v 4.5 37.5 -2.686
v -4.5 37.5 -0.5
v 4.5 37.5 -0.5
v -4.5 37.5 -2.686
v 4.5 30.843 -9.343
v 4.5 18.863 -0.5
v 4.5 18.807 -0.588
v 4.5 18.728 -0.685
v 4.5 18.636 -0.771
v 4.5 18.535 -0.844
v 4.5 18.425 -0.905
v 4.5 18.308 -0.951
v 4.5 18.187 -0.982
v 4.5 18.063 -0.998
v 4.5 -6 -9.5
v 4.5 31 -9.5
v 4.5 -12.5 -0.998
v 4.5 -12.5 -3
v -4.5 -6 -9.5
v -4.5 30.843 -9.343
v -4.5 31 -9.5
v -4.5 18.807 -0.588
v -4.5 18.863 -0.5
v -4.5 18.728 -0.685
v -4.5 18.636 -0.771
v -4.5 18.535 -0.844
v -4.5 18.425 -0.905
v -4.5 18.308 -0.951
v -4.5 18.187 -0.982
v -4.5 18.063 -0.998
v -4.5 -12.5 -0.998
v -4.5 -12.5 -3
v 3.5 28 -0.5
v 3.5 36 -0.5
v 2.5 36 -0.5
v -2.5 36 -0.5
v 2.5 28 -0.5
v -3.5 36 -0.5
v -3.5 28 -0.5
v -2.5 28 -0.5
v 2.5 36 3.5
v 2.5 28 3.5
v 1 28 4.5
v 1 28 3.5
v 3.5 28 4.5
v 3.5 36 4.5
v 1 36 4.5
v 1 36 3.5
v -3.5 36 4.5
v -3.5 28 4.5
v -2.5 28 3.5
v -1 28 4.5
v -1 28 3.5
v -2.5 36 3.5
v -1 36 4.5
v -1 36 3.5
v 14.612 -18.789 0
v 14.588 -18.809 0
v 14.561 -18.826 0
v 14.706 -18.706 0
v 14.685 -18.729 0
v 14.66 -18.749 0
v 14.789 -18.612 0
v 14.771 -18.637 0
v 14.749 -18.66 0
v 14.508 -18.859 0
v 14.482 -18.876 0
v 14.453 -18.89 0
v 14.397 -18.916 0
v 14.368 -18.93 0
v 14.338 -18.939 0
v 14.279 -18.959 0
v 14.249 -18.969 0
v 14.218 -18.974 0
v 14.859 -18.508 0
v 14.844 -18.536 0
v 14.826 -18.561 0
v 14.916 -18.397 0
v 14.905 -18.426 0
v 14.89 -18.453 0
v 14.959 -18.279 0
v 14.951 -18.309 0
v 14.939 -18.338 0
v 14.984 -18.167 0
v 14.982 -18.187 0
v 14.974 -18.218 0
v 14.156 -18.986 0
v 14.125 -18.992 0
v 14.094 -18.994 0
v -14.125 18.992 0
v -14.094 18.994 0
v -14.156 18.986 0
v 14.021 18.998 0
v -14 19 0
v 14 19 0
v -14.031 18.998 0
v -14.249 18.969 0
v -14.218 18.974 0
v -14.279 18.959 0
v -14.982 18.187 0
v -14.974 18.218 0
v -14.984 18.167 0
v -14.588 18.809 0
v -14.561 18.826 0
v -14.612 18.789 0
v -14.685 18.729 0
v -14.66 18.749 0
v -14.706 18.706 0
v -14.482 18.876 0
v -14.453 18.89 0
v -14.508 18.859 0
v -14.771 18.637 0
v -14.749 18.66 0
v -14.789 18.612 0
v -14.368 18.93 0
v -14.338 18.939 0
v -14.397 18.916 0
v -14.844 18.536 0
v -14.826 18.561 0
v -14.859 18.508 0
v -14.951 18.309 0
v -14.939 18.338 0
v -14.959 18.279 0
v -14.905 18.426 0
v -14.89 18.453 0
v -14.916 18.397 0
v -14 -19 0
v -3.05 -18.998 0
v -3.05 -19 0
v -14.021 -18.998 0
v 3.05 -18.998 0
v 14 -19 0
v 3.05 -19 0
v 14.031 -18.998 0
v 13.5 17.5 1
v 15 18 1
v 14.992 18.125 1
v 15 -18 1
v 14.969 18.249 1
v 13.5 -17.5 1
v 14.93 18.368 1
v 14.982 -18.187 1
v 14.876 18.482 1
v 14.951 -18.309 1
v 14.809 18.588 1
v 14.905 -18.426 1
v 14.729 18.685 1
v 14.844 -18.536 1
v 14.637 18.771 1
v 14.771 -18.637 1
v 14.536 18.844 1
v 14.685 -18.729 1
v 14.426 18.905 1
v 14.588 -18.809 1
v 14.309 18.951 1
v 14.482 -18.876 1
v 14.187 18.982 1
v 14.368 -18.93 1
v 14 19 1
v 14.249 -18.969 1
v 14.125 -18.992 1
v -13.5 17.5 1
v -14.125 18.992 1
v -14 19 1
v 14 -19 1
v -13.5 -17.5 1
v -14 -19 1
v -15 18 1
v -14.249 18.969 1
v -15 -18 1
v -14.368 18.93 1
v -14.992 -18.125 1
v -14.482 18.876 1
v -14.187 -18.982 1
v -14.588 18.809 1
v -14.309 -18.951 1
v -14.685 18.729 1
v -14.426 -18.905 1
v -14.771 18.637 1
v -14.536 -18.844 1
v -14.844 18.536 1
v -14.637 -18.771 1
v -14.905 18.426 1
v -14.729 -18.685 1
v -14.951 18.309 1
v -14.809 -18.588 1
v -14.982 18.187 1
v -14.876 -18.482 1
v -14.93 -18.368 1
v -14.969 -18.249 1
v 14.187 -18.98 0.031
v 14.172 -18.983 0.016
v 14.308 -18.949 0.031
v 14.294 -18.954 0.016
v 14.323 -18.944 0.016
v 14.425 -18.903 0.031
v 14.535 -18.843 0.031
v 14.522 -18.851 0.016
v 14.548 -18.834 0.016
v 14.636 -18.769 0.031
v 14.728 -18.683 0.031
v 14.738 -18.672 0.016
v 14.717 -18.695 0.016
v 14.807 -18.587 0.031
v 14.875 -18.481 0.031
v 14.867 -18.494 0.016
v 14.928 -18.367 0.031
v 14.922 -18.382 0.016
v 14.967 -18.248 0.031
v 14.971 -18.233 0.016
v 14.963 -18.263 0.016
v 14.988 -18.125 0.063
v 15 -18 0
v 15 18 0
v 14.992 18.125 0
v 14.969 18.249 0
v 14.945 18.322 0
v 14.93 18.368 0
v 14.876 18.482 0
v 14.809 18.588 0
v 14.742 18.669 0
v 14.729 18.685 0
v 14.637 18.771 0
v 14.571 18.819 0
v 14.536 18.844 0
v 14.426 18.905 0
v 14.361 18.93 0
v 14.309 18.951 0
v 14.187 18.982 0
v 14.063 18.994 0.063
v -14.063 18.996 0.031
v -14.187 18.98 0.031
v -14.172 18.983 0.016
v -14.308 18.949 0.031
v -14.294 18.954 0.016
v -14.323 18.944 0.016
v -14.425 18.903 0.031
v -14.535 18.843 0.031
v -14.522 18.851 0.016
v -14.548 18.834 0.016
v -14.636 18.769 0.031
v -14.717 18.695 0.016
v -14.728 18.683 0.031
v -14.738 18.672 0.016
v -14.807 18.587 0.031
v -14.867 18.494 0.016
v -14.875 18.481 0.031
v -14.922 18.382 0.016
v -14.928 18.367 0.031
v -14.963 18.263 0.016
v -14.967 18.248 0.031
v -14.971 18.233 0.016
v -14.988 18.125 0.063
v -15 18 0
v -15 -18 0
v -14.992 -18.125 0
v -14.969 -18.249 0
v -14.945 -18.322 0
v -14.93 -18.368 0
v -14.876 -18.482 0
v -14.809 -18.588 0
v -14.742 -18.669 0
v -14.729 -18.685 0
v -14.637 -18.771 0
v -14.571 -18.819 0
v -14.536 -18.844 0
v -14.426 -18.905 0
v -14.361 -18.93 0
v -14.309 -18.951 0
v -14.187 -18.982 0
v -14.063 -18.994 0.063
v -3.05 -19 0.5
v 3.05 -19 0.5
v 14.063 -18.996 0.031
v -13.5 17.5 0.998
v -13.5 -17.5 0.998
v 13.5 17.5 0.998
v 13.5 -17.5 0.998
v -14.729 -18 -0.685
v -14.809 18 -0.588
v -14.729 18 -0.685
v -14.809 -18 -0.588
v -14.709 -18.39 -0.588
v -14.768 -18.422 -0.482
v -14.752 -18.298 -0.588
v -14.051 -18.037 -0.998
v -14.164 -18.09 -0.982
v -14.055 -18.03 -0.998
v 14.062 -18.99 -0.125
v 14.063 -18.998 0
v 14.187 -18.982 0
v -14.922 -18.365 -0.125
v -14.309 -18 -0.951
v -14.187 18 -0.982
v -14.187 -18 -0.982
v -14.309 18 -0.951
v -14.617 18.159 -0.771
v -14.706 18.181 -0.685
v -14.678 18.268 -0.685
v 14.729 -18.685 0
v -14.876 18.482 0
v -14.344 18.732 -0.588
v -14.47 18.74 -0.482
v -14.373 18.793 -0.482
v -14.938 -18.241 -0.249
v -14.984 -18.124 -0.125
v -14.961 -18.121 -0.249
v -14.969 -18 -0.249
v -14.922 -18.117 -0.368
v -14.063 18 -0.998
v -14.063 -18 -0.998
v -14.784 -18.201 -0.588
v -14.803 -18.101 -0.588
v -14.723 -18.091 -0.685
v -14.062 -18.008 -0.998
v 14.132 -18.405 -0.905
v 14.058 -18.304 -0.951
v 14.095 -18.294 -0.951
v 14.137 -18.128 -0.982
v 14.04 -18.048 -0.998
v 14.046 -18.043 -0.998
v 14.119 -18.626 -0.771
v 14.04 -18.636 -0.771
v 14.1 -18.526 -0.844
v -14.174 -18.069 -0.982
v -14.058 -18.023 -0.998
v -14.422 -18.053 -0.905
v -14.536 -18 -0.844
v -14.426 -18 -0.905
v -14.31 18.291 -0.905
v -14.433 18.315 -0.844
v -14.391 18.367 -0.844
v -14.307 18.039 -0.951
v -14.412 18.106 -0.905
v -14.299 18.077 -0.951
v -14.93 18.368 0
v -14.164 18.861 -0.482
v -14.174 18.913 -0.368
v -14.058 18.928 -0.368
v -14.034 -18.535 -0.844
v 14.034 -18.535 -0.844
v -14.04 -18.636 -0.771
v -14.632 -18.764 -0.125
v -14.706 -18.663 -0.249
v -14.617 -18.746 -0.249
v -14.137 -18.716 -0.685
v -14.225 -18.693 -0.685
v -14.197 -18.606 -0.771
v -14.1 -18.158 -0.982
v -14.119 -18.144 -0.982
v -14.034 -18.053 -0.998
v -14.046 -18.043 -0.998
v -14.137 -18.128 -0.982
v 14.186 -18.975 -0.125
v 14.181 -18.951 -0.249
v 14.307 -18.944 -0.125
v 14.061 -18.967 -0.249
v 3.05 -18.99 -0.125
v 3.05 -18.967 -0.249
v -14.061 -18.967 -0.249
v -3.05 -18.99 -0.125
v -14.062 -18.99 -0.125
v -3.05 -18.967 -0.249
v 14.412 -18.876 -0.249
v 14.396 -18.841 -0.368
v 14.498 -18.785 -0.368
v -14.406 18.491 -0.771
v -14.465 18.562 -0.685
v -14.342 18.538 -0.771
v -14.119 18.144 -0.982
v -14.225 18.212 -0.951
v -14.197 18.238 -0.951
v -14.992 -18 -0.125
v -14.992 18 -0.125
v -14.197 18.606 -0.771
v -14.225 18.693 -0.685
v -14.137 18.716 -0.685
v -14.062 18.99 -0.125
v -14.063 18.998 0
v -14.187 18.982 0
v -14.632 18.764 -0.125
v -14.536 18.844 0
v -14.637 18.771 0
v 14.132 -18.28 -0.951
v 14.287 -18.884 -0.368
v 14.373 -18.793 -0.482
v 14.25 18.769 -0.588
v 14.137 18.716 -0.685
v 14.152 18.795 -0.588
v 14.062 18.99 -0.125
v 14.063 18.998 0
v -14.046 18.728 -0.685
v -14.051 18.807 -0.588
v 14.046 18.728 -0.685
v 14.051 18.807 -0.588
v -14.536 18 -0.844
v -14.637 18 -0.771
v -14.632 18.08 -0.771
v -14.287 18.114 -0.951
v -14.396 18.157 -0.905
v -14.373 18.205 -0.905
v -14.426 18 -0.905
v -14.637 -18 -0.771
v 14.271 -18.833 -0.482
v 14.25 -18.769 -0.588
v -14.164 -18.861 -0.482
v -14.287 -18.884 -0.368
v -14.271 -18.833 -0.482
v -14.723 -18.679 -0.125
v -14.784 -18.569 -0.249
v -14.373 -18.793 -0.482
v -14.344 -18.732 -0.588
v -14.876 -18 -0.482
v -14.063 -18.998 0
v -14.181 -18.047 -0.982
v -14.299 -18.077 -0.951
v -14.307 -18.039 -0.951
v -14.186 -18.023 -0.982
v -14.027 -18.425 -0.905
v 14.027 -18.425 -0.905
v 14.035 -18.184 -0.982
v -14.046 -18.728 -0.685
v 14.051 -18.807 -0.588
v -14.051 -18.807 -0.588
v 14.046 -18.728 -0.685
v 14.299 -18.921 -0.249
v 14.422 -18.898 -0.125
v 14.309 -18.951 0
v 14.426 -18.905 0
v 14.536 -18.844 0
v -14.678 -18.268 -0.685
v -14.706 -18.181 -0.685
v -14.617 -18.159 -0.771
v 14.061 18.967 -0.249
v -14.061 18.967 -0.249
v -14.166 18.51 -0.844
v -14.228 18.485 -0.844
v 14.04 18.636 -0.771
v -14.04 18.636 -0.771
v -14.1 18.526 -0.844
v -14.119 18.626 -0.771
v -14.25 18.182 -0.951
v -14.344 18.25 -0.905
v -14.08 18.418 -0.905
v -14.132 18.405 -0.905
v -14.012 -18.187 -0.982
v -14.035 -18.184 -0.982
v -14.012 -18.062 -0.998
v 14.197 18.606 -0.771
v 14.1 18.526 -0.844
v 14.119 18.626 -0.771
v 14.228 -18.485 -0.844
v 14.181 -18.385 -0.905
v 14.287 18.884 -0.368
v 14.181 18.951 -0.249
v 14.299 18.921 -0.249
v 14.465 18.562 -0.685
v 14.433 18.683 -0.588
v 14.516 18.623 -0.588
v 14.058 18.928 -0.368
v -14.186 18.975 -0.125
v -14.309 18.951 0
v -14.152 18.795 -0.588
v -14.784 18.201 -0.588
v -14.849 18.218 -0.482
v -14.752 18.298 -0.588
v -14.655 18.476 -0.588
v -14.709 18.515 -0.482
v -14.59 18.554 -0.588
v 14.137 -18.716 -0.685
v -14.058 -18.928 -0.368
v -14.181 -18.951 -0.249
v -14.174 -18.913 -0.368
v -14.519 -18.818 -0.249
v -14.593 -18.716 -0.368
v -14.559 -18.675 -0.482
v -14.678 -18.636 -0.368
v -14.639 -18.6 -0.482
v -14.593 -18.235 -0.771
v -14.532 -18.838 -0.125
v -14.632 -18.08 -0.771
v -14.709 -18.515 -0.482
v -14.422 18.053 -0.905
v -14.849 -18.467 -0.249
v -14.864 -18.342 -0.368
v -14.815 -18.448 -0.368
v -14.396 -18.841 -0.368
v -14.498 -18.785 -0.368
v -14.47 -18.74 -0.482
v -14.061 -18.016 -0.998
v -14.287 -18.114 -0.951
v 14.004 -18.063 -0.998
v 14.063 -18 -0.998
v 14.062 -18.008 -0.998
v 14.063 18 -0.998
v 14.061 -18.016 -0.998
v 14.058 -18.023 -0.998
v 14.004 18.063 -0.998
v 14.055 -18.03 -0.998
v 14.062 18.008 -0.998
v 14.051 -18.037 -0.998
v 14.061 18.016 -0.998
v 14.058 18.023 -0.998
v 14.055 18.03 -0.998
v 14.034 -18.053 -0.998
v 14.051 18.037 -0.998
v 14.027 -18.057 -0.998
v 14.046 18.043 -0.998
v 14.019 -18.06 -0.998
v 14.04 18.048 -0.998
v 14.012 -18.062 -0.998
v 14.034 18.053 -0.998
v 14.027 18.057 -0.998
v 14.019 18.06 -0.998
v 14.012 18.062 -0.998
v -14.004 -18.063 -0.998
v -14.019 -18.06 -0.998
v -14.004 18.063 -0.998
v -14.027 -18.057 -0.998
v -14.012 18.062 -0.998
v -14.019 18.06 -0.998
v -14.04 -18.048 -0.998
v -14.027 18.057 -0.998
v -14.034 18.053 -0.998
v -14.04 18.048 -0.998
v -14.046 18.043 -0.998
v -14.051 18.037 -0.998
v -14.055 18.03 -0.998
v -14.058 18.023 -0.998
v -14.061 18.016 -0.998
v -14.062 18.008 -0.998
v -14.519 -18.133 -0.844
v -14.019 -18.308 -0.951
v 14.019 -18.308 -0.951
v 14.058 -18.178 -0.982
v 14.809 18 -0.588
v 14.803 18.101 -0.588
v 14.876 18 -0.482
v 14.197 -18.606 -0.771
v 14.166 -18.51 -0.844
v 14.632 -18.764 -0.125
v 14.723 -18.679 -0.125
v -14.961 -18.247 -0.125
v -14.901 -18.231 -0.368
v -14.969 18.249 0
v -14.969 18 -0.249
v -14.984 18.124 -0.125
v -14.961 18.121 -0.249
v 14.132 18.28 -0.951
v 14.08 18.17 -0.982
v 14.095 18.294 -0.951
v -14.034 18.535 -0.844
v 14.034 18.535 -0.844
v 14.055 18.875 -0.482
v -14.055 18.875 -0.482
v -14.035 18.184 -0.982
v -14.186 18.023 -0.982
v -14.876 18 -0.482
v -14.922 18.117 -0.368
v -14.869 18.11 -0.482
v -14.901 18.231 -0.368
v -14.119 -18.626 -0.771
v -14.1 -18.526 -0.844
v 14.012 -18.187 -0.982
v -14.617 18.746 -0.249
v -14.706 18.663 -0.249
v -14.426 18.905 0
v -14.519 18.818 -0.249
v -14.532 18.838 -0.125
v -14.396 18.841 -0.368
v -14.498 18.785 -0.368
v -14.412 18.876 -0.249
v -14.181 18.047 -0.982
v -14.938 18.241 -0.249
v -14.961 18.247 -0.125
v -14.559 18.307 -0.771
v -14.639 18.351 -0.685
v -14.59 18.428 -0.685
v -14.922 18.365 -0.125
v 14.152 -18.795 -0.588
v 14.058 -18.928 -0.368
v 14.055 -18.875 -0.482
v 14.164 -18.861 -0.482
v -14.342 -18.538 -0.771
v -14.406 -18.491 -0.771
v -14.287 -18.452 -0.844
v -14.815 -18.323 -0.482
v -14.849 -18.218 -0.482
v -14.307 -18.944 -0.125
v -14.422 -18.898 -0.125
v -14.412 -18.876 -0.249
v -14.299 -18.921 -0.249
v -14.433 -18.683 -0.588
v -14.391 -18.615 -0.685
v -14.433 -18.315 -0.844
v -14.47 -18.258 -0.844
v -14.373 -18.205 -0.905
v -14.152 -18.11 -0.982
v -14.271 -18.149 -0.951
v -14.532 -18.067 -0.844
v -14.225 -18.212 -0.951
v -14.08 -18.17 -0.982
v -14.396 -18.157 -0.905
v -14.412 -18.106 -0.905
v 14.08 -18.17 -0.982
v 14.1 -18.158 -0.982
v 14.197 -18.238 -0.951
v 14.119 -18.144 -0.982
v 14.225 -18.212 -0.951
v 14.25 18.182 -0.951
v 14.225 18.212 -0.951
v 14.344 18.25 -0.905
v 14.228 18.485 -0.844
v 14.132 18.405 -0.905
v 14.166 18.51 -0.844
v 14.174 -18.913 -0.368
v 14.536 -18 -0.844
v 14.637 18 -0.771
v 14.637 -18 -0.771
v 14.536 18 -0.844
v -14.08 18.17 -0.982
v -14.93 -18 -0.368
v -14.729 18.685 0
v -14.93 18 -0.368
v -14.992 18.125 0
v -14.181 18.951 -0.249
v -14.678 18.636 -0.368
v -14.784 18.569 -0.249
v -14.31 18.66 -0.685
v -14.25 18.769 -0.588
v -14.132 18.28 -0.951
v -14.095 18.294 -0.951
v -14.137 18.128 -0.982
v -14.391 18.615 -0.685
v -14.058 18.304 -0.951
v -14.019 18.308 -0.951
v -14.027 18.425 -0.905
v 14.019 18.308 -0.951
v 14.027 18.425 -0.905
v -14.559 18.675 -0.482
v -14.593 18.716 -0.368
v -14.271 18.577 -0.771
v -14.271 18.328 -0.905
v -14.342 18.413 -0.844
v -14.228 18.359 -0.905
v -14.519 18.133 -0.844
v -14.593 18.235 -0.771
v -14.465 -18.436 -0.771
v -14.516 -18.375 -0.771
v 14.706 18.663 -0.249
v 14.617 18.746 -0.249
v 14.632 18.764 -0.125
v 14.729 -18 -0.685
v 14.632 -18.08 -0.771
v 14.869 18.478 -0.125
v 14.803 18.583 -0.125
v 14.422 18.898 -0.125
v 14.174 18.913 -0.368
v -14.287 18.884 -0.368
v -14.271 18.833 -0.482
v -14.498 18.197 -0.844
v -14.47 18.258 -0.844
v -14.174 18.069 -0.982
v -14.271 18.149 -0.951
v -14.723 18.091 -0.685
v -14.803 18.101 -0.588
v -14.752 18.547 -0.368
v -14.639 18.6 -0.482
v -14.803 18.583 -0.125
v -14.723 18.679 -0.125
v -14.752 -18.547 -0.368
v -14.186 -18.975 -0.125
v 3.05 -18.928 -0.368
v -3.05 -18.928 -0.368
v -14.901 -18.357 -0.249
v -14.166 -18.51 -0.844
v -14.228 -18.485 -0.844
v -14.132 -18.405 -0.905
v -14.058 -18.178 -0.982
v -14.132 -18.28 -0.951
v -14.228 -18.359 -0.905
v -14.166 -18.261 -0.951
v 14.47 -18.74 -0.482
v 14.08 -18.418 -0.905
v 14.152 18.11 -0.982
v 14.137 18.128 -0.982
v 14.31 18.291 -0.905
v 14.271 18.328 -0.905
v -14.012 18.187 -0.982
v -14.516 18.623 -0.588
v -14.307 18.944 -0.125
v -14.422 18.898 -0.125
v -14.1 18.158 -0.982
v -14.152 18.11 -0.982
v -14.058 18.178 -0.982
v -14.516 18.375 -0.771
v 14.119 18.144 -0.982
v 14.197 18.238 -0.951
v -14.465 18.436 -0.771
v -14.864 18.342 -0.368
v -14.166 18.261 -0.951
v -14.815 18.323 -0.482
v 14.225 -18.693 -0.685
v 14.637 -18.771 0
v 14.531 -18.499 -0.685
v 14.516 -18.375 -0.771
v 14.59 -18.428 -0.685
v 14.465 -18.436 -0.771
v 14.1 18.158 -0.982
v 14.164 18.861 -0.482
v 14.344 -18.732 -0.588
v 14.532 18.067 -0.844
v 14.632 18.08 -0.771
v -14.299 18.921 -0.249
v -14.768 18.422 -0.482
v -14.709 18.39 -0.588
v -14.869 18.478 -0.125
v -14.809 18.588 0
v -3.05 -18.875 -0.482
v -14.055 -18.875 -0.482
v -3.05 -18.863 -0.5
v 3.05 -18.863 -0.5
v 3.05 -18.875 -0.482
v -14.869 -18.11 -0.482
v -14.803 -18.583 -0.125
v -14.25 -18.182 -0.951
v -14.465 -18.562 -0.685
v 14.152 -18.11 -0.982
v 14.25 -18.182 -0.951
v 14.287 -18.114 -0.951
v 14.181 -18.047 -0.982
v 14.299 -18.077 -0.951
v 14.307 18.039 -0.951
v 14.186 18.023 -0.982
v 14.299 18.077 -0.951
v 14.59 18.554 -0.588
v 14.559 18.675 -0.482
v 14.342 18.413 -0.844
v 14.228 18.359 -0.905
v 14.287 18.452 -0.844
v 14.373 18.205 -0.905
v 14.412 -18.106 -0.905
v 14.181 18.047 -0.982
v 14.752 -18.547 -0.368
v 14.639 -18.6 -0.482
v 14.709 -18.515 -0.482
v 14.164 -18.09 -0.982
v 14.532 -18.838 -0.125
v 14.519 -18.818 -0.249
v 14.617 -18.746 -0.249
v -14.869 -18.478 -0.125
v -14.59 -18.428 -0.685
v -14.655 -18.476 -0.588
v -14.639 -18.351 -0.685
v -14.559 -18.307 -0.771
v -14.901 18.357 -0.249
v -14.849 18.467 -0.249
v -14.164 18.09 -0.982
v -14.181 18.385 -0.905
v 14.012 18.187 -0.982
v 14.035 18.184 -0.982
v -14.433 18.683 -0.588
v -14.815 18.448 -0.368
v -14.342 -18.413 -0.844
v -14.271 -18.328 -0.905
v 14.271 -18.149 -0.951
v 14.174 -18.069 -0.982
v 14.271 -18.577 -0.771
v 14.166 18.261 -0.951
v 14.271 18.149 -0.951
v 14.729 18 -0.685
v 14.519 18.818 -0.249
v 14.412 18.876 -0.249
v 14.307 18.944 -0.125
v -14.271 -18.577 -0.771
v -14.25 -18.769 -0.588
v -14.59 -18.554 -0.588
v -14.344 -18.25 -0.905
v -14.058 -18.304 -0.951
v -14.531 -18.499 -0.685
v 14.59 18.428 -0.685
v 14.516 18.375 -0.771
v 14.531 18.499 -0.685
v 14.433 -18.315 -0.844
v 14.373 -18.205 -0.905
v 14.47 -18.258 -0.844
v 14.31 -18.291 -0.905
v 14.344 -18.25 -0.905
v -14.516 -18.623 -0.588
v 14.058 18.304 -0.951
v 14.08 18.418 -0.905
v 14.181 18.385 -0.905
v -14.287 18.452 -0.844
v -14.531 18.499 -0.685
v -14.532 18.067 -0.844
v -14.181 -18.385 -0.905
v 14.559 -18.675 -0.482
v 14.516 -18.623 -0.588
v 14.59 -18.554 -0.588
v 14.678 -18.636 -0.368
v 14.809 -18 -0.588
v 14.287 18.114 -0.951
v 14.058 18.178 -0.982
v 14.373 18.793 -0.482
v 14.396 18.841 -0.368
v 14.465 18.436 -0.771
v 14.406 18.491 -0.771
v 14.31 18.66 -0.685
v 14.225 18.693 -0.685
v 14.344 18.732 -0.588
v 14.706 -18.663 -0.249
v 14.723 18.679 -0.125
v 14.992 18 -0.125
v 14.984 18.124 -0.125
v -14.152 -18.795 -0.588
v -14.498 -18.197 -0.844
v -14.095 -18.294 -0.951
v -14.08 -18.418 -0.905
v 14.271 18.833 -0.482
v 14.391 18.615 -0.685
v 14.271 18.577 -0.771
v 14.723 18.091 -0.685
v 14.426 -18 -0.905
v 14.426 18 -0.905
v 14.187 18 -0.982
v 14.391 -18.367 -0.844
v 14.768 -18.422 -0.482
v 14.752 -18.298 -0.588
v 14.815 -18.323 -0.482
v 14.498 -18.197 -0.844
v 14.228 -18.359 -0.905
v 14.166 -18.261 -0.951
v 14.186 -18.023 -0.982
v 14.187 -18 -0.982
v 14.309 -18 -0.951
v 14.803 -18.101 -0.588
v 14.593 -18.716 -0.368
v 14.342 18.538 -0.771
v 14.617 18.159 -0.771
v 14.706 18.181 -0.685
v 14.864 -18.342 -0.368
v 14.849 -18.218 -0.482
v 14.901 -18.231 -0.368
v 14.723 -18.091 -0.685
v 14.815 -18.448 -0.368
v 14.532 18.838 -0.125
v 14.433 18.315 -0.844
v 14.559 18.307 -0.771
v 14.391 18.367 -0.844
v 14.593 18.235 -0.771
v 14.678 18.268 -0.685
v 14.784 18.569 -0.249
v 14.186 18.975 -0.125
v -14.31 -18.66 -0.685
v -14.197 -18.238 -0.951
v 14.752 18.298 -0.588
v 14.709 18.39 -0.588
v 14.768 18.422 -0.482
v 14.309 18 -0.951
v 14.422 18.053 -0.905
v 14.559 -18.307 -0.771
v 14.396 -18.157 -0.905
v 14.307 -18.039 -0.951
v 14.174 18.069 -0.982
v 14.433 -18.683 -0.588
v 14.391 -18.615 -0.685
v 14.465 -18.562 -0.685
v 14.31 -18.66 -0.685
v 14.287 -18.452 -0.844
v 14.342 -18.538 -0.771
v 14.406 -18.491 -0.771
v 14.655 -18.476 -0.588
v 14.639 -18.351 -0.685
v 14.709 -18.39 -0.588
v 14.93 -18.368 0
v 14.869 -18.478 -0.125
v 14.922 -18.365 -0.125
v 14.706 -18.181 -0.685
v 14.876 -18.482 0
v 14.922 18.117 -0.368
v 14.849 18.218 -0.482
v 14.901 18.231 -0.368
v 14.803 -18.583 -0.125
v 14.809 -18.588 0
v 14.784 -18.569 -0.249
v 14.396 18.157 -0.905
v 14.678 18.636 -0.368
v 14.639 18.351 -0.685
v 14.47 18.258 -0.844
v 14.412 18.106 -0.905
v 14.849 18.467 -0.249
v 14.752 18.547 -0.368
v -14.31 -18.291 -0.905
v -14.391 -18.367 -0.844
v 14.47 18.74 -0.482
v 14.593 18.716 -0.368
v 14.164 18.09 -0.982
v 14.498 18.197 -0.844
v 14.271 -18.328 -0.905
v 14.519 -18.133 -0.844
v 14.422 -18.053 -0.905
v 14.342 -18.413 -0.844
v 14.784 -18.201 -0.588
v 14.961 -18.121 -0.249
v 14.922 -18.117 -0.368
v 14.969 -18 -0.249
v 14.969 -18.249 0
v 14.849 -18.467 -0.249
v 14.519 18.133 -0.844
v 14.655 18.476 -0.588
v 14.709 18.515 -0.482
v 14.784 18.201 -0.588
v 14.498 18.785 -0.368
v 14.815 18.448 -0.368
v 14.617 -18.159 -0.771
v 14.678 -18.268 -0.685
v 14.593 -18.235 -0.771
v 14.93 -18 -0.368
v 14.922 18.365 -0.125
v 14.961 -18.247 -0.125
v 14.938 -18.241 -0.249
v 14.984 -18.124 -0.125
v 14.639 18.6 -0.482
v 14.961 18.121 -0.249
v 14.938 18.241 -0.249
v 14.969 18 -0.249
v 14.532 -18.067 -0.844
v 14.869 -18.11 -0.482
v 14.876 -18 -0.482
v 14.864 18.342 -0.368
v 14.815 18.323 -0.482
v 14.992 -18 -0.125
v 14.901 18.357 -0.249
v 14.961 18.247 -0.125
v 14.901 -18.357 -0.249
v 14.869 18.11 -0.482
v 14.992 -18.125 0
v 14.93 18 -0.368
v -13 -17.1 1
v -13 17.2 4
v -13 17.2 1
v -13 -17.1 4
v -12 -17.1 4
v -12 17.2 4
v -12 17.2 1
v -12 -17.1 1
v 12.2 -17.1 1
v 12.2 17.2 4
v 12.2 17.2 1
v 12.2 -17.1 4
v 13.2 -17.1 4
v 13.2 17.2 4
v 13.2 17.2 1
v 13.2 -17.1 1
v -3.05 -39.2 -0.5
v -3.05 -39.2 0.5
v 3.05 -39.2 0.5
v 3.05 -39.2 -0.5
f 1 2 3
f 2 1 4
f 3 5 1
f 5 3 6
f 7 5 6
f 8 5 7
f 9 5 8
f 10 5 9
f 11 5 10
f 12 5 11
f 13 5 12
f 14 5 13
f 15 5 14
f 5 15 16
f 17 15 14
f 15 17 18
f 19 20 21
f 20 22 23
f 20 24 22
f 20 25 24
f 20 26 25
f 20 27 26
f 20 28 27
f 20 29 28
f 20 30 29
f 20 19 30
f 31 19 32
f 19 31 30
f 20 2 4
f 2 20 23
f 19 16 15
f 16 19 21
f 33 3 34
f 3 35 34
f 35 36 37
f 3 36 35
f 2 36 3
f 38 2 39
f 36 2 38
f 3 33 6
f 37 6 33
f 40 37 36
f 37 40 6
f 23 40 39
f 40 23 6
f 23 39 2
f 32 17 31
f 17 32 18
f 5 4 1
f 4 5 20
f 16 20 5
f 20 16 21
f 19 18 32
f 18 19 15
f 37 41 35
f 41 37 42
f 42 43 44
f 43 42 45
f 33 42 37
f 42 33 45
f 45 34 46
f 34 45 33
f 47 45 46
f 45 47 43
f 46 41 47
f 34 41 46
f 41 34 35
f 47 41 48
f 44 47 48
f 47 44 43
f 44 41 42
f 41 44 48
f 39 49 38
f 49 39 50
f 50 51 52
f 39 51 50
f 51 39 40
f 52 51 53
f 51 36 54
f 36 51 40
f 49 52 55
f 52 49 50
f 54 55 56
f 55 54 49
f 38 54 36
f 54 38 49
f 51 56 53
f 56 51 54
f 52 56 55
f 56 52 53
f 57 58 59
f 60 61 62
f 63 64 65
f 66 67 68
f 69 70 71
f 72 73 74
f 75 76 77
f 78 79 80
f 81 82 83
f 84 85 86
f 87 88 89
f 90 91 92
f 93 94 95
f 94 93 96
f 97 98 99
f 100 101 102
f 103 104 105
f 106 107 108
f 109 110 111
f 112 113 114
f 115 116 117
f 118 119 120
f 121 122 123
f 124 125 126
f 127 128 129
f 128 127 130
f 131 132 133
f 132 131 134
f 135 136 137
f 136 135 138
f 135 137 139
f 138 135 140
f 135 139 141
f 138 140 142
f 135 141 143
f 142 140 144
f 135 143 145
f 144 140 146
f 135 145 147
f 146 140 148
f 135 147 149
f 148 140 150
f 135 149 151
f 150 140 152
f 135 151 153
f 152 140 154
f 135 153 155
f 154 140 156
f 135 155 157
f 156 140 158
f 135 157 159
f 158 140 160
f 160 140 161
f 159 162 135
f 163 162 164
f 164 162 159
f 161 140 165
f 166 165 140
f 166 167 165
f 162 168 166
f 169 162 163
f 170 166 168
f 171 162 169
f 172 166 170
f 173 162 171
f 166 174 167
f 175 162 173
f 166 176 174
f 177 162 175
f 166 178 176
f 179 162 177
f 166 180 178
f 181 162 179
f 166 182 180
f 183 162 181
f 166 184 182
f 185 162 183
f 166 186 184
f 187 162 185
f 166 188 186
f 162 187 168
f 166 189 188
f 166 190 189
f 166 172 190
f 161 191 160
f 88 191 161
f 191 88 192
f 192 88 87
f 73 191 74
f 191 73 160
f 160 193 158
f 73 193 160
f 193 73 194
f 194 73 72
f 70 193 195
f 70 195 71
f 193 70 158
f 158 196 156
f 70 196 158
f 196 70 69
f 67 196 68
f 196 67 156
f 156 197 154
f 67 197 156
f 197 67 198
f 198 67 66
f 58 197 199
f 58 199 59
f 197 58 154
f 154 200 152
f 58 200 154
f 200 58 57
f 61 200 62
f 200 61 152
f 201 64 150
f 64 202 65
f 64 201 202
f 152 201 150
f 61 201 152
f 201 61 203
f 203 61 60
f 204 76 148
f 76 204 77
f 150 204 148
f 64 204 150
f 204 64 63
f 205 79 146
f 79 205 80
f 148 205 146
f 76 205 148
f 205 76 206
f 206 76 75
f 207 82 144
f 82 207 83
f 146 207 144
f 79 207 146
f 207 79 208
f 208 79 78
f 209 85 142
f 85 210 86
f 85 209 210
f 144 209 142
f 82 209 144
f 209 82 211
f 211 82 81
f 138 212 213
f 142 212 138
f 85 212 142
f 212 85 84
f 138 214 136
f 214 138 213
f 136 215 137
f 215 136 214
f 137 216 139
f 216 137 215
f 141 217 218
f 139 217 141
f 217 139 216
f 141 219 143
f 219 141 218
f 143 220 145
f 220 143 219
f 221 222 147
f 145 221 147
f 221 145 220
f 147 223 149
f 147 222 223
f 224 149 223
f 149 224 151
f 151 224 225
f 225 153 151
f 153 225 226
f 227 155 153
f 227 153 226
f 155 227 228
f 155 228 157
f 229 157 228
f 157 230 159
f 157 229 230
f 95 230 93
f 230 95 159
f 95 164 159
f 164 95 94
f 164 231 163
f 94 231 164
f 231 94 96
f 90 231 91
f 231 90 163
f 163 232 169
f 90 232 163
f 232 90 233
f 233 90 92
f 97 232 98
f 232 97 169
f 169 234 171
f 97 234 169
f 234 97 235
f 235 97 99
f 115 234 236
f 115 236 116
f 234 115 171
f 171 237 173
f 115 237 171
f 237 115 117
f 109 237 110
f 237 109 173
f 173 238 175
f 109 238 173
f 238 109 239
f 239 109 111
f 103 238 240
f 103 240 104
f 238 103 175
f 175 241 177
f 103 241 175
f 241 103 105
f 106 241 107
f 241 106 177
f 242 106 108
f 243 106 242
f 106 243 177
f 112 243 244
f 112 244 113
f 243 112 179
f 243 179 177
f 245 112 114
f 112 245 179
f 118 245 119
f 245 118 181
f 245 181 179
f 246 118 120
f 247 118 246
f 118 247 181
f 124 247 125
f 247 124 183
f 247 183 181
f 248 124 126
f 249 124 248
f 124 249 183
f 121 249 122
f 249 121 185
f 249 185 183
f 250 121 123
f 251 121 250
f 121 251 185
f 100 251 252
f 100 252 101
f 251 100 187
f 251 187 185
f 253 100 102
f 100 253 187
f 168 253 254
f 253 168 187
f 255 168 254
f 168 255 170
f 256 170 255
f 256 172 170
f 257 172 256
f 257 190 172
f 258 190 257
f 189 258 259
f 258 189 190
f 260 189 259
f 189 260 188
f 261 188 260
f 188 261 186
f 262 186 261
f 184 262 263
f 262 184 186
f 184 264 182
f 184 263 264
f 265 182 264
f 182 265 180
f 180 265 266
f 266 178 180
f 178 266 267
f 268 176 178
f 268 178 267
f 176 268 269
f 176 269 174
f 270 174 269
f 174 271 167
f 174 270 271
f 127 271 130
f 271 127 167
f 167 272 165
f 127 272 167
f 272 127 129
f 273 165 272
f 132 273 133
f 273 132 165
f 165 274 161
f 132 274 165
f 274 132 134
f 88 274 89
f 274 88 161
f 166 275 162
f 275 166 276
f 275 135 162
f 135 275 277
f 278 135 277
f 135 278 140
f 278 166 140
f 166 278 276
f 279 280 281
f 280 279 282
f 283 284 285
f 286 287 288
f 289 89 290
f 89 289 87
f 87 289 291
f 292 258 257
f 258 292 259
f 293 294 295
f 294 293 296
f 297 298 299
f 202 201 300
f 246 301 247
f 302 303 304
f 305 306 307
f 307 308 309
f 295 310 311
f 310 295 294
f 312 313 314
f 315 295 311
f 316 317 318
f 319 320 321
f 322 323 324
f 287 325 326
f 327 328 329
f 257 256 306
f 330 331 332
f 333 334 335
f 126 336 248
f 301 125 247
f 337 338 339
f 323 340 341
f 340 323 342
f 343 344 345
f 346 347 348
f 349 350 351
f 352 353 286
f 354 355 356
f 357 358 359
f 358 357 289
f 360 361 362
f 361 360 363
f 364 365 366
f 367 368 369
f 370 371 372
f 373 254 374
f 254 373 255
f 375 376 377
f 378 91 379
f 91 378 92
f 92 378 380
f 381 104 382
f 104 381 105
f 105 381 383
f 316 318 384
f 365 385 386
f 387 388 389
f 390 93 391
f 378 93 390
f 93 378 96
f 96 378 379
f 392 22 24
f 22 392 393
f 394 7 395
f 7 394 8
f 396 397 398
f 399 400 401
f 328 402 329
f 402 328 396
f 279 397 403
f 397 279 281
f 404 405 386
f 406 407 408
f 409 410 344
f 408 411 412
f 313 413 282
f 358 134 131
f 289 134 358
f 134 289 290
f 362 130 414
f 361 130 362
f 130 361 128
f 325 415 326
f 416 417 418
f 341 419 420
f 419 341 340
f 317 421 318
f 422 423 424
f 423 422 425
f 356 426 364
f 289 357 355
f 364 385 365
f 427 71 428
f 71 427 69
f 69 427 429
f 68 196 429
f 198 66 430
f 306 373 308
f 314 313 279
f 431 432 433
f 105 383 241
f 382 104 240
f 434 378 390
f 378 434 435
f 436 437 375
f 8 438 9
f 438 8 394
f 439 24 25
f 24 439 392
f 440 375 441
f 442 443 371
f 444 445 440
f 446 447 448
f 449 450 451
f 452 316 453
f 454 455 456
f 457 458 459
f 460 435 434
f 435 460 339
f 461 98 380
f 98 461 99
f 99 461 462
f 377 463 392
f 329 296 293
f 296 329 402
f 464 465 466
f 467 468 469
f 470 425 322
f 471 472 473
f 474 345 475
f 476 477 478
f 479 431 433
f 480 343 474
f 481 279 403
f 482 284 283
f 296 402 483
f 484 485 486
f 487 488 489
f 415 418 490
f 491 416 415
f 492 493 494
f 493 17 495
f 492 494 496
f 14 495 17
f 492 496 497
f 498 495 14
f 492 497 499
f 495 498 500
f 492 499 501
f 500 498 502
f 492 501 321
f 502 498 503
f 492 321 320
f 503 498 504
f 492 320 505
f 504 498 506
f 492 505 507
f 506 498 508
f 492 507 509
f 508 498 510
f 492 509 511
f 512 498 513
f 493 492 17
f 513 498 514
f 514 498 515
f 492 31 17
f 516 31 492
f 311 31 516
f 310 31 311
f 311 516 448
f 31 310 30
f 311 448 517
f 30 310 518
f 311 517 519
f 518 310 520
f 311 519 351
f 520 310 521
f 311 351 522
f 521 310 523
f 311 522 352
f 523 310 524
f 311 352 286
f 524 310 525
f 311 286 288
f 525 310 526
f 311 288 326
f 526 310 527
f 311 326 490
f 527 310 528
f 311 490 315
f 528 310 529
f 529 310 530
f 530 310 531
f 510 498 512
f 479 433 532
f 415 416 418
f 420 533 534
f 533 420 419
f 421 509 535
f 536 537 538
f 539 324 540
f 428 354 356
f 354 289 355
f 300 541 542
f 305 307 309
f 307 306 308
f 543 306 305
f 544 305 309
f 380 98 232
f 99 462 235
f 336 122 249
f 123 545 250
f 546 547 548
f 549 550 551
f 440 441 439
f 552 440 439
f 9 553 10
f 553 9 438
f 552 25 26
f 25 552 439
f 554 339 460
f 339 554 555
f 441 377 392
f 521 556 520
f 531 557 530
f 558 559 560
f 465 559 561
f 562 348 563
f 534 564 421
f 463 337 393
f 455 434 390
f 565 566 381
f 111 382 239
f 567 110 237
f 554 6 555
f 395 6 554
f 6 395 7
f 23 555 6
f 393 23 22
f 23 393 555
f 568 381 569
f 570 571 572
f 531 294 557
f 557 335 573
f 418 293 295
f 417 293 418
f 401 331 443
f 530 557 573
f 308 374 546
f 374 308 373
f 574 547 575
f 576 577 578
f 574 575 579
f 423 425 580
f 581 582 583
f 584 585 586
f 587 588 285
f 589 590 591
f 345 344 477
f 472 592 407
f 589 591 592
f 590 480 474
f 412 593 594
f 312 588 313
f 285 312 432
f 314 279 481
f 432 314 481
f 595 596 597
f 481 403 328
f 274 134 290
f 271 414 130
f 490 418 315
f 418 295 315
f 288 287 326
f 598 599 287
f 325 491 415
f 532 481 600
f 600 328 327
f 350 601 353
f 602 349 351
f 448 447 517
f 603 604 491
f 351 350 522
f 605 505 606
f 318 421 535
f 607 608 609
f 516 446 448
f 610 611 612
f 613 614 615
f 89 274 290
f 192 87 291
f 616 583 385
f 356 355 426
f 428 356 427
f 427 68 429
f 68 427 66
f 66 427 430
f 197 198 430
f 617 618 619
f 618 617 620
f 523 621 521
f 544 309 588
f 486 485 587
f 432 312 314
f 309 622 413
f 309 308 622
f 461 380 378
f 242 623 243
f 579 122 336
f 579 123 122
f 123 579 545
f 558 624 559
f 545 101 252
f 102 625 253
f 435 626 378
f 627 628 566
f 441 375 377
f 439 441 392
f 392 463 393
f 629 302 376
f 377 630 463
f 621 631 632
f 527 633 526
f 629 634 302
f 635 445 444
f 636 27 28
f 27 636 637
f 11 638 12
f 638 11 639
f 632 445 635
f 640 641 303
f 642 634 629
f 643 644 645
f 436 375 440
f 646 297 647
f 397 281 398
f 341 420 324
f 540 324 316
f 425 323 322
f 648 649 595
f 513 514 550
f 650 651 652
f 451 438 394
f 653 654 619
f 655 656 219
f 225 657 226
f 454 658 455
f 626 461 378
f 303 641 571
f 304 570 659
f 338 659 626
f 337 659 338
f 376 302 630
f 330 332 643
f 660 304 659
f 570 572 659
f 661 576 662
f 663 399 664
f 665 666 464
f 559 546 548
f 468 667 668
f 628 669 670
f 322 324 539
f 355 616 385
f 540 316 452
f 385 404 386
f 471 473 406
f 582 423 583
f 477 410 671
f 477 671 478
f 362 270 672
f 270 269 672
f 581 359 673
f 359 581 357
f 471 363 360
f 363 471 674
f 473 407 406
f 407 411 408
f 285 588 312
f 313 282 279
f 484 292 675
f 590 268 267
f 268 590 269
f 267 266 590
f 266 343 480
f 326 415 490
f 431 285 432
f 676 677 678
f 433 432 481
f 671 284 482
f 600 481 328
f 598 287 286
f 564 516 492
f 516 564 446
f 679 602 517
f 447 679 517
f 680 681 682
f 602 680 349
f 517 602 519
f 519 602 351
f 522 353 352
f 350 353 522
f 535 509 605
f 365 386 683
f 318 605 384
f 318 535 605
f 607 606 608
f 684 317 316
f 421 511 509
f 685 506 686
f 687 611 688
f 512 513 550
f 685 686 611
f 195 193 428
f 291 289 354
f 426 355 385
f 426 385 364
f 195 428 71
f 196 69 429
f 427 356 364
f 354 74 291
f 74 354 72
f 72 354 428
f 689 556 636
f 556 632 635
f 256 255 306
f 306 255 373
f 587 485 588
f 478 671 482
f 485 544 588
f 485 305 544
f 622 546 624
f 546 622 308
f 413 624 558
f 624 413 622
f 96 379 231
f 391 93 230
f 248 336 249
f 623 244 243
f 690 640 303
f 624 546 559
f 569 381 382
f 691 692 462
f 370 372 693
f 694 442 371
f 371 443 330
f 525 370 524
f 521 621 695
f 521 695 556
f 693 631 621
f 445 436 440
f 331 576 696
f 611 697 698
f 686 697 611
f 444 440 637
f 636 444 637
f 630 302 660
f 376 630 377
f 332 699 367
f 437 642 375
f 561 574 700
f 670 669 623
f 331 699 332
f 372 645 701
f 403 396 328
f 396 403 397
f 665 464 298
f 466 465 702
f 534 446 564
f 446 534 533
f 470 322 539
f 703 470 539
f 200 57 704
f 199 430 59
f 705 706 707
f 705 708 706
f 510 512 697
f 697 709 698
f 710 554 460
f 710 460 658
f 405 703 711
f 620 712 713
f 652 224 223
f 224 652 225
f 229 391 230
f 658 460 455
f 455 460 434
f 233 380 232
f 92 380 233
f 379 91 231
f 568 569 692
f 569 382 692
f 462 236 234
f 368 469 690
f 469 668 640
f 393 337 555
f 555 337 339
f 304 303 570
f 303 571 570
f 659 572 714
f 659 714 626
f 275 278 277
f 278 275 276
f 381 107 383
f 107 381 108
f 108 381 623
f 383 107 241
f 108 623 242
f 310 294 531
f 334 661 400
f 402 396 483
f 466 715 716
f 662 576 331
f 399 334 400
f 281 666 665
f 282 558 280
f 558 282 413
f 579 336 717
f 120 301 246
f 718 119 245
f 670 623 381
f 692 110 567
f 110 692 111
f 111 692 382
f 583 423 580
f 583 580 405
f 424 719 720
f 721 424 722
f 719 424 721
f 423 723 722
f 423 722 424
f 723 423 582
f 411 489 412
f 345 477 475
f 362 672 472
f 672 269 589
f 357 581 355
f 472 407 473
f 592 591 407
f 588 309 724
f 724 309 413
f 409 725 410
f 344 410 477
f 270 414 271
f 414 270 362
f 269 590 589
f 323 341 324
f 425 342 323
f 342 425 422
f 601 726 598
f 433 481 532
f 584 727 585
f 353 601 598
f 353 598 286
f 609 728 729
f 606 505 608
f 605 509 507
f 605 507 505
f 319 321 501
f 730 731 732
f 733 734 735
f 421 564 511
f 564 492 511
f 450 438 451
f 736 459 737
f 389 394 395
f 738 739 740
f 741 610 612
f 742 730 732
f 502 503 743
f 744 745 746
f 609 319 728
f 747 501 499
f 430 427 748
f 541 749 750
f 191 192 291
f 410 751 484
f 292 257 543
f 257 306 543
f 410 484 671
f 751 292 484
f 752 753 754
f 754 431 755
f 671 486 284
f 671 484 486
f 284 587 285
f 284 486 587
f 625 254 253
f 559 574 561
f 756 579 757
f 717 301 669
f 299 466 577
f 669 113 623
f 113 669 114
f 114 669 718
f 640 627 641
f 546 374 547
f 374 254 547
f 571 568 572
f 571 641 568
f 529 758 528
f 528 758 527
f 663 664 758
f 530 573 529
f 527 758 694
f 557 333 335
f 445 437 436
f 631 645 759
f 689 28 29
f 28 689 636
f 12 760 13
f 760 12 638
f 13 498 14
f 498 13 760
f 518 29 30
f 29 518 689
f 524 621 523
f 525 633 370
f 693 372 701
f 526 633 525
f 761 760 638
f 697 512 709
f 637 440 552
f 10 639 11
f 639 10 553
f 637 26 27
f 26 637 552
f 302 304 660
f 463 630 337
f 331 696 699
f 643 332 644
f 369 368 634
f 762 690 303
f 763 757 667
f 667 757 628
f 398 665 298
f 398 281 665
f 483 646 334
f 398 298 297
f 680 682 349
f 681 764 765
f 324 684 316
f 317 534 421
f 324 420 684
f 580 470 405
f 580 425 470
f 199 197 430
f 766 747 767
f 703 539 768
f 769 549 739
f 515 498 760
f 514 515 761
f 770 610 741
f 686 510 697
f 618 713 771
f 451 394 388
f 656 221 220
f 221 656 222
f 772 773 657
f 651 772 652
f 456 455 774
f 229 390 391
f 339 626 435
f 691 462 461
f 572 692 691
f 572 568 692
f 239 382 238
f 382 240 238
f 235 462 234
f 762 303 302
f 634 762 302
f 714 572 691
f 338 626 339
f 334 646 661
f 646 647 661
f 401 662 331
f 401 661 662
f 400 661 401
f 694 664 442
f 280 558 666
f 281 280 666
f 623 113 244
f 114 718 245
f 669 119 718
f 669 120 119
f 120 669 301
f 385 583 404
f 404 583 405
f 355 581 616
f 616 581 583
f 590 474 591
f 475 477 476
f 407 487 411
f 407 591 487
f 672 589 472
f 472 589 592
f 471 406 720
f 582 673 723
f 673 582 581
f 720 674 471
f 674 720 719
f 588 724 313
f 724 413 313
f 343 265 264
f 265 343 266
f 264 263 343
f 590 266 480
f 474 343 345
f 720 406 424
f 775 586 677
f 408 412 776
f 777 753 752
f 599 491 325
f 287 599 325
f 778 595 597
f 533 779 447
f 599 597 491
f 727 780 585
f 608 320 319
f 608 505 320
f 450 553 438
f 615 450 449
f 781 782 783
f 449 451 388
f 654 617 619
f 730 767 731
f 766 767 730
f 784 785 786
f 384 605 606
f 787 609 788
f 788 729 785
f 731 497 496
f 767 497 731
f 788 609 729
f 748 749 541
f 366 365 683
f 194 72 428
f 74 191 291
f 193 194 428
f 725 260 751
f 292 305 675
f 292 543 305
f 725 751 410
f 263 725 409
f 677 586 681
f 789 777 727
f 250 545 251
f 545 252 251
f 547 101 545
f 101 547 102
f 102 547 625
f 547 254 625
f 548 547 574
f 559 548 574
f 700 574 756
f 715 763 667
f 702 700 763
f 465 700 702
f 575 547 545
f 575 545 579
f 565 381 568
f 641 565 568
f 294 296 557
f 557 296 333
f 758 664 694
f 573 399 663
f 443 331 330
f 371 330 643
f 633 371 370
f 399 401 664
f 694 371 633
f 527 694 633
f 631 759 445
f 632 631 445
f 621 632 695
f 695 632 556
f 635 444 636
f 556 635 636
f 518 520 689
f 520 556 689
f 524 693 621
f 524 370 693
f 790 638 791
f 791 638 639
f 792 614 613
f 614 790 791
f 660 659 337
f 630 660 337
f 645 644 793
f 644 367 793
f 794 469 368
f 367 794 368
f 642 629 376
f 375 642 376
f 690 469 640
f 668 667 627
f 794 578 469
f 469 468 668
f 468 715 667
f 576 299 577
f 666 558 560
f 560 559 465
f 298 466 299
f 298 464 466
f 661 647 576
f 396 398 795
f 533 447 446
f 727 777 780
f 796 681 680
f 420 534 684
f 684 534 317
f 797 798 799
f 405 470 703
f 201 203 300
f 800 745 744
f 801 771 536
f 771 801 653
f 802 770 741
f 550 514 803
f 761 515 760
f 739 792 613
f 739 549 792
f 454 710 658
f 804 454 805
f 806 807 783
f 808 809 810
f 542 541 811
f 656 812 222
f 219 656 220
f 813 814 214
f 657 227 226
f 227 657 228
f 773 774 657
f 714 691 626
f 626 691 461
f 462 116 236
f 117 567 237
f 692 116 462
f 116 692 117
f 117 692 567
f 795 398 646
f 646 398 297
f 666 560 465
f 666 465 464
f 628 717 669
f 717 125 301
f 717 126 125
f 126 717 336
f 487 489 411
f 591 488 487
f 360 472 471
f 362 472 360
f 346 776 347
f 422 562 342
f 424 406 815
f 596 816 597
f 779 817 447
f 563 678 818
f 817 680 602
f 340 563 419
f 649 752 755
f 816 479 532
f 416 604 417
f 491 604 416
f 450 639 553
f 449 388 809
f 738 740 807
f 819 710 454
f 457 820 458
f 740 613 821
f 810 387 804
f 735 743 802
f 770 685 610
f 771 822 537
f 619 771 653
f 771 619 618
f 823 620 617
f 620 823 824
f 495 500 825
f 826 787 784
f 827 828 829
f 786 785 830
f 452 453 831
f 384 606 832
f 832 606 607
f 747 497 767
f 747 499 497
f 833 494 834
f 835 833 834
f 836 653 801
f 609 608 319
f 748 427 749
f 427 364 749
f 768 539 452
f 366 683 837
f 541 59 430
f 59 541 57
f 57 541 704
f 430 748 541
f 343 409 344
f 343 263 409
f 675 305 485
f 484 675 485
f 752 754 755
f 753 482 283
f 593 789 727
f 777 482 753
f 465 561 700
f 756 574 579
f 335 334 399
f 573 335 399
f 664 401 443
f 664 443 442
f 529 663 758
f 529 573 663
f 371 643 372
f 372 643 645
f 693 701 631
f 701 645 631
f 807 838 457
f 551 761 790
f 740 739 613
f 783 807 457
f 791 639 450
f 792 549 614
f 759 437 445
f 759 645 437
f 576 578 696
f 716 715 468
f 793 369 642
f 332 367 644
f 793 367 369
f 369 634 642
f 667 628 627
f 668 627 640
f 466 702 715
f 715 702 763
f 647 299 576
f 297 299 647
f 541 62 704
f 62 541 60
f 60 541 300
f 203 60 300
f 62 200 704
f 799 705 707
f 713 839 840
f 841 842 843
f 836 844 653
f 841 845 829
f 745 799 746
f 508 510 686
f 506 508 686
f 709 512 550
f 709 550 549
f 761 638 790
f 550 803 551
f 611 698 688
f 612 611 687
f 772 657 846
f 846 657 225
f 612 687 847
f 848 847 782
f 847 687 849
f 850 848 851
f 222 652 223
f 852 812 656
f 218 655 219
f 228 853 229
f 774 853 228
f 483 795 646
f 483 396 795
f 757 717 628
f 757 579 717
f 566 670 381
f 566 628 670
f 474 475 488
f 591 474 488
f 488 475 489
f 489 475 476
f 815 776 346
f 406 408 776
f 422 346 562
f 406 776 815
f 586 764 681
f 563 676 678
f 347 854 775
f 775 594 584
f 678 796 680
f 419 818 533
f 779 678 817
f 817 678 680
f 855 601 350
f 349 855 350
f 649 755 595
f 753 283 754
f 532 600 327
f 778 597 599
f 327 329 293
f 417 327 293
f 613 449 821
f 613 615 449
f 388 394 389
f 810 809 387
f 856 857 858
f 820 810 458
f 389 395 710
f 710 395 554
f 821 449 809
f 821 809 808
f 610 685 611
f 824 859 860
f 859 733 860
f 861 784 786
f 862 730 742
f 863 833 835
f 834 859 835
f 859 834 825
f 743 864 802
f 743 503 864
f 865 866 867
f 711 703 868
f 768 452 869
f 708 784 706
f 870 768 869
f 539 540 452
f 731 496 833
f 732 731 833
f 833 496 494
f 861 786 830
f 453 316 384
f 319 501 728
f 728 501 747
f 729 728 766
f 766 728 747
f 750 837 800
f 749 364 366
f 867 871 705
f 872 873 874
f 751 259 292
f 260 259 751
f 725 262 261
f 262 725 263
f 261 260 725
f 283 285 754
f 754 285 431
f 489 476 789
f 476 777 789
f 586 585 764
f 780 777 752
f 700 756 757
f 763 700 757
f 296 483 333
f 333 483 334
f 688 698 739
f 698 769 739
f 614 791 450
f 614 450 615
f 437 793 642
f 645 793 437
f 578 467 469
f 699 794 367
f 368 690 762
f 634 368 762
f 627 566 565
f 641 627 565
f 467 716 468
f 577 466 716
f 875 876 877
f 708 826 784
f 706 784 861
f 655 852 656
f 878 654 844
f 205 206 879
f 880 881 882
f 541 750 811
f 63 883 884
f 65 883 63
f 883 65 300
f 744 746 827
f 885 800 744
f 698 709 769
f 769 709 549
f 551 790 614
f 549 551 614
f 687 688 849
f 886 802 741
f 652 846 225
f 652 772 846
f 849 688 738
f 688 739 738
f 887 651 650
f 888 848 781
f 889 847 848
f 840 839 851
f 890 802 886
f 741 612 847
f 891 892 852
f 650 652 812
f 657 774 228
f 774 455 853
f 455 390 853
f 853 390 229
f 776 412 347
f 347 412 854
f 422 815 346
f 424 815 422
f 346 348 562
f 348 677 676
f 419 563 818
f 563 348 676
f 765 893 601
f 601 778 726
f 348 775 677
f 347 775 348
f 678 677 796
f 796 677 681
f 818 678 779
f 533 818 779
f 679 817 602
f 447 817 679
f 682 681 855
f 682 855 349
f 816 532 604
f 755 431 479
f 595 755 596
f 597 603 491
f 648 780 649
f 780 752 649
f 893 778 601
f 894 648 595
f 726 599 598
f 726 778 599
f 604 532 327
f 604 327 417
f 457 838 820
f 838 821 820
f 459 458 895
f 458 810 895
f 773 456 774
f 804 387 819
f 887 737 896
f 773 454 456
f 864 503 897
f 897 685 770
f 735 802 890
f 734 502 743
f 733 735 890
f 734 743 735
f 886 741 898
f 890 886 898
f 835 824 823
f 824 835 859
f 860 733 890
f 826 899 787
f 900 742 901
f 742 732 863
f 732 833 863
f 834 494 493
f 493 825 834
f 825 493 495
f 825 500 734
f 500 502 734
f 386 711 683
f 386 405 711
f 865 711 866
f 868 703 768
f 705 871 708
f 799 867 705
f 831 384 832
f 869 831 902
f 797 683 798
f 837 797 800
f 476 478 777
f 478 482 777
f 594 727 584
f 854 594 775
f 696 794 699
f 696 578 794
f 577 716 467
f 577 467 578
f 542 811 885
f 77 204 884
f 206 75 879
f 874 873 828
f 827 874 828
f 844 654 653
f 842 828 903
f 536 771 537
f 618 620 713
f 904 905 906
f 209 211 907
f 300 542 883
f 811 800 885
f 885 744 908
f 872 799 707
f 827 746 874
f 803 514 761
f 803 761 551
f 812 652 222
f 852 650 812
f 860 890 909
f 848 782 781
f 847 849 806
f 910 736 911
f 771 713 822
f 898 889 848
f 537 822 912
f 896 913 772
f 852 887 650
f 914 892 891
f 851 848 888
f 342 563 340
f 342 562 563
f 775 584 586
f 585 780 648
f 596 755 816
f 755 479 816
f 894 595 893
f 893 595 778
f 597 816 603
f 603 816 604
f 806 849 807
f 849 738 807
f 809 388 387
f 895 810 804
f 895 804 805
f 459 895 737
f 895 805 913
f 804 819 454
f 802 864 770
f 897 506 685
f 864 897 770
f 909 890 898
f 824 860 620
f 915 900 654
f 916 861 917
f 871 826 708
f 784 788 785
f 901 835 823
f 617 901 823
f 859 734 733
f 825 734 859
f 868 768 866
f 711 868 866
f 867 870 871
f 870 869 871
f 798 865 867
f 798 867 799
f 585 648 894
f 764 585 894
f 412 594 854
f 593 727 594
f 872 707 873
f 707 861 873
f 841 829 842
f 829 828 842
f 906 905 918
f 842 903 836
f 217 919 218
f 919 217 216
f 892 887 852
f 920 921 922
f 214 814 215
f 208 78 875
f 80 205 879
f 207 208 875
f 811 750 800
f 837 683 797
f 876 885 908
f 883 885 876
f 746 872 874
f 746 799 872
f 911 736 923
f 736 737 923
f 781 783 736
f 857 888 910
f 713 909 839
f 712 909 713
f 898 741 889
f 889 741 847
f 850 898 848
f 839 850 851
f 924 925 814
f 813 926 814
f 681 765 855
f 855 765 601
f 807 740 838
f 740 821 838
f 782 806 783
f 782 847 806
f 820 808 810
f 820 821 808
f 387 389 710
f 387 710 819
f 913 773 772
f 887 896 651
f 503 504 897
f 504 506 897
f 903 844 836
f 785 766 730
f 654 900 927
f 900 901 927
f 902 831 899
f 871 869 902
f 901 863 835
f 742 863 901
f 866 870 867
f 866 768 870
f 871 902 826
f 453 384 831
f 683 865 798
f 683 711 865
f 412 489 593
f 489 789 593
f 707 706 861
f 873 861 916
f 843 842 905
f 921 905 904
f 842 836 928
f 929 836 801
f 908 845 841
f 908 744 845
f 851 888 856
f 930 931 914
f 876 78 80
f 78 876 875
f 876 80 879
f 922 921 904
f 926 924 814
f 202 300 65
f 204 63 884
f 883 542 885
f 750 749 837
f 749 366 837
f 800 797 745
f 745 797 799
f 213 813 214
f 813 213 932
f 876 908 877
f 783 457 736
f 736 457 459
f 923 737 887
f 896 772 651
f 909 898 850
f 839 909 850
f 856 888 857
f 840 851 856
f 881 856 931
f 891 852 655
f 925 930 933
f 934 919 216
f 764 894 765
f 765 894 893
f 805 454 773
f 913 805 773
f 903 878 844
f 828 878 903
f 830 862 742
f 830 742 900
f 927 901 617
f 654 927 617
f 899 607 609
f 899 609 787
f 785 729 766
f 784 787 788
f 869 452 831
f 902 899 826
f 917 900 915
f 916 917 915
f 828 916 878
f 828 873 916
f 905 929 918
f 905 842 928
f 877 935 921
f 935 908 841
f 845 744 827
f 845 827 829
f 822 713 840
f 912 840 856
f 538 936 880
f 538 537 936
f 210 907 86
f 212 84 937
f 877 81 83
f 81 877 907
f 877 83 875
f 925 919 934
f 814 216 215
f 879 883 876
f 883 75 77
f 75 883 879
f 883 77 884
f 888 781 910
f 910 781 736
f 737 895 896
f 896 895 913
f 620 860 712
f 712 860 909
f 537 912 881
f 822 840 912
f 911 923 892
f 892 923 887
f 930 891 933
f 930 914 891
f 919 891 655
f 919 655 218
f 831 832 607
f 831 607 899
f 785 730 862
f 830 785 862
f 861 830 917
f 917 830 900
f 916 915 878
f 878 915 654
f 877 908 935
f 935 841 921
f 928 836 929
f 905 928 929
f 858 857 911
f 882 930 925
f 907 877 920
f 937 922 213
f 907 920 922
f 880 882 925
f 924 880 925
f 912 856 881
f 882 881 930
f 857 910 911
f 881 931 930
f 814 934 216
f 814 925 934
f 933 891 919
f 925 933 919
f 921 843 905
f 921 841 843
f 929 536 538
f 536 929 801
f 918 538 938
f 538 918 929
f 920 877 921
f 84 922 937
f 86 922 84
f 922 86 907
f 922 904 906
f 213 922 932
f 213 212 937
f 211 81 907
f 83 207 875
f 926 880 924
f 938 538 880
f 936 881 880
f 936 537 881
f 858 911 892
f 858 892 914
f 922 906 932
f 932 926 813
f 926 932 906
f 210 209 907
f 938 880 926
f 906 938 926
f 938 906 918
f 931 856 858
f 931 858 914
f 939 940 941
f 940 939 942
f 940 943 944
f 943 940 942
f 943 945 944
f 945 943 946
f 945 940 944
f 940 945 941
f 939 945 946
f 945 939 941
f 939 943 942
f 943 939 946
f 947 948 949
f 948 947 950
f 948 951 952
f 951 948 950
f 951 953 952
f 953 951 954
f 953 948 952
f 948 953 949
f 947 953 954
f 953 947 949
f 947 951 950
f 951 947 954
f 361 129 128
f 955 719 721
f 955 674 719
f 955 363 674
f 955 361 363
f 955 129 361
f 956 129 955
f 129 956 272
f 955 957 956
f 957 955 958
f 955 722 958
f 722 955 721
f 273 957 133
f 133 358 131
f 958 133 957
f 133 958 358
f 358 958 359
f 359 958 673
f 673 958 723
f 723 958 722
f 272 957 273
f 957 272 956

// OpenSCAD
$fn=50;
BOX_W = 28; // Box Width
BOX_L = 36;// Box Length
BOX_H = 1.0; // Box Height
//SCREW_SIZE = .5; // Screw size in mm
CORNER_RADIUS = 1.0; // Radius of corners
WALL = 1.0;// Wall Thickness

KEEL_WIDTH=9.0;
KEEL_HEIGHT=9.0;
KEEL_LENGTH=50;

difference() {
  union() {
    linear_extrude( BOX_H )
    difference(){
      offset(r=CORNER_RADIUS) square( [BOX_W, BOX_L], center=true );
      offset( r= CORNER_RADIUS - WALL ) square( [BOX_W-WALL, BOX_L-WALL],  center=true );
    };

    coordinates = [ [0,0],[0,BOX_L],[BOX_W,BOX_L],[BOX_W,0] ];

    translate ( [-BOX_W/2, -BOX_L/2] )
    hull()
    for (i = coordinates)
      translate(i) sphere(CORNER_RADIUS);

    translate([BOX_W/-2+WALL,BOX_L/-2+0.9,WALL]) cube([WALL,BOX_L-(WALL*2)+0.3,3]);

    translate([BOX_W/2-WALL*1.8,BOX_L/-2+0.9,WALL]) cube([WALL,BOX_L-(WALL*2)+0.3,3]);

    // mic channel cover
    translate([0,-17,WALL-1])
    rotate([90,0,0])
    #linear_extrude(22.2) square([6.1,1.0], center=true);
    
    // keel
    translate([0,37.5,-5])
    rotate([90,0,0])

    difference() {
      linear_extrude(KEEL_LENGTH) square([KEEL_WIDTH, KEEL_HEIGHT], center=true); 
      // back of keel slope
      translate([-5, -10, 1])
      rotate([-45, 0, 0])
      #cube([10, 11, 8]); 
      // front of keeo slope
      translate([-5, -5, 43])
      rotate([45, 0, 0])
      #cube([10, 11, 8]);          
    }
      
      
    // Inverted L-shaped C-clamp
    difference() {
      translate([KEEL_WIDTH/2-2, KEEL_LENGTH-18, -0.5])
      rotate([90, 0, 0])
      union() {
        // Vertical arm of the C-clamp 2
        translate([0, 0, -4]) cube([1, 5, 8]);
        // Horizontal arm of the C-clamp
        rotate([90, 0, 0])
        translate([-1.5, -4, -5]) cube([1.5, 8, 1]);
          
        // Vertical arm of the C-clamp 1
        translate([-6, 0, -4]) cube([1, 5, 8]);
        // Horizontal arm of the C-clamp
        rotate([90, 0, 0])
        translate([-5, -4,-5]) cube([1.5, 8, 1]);
      }
    }
  }
}
